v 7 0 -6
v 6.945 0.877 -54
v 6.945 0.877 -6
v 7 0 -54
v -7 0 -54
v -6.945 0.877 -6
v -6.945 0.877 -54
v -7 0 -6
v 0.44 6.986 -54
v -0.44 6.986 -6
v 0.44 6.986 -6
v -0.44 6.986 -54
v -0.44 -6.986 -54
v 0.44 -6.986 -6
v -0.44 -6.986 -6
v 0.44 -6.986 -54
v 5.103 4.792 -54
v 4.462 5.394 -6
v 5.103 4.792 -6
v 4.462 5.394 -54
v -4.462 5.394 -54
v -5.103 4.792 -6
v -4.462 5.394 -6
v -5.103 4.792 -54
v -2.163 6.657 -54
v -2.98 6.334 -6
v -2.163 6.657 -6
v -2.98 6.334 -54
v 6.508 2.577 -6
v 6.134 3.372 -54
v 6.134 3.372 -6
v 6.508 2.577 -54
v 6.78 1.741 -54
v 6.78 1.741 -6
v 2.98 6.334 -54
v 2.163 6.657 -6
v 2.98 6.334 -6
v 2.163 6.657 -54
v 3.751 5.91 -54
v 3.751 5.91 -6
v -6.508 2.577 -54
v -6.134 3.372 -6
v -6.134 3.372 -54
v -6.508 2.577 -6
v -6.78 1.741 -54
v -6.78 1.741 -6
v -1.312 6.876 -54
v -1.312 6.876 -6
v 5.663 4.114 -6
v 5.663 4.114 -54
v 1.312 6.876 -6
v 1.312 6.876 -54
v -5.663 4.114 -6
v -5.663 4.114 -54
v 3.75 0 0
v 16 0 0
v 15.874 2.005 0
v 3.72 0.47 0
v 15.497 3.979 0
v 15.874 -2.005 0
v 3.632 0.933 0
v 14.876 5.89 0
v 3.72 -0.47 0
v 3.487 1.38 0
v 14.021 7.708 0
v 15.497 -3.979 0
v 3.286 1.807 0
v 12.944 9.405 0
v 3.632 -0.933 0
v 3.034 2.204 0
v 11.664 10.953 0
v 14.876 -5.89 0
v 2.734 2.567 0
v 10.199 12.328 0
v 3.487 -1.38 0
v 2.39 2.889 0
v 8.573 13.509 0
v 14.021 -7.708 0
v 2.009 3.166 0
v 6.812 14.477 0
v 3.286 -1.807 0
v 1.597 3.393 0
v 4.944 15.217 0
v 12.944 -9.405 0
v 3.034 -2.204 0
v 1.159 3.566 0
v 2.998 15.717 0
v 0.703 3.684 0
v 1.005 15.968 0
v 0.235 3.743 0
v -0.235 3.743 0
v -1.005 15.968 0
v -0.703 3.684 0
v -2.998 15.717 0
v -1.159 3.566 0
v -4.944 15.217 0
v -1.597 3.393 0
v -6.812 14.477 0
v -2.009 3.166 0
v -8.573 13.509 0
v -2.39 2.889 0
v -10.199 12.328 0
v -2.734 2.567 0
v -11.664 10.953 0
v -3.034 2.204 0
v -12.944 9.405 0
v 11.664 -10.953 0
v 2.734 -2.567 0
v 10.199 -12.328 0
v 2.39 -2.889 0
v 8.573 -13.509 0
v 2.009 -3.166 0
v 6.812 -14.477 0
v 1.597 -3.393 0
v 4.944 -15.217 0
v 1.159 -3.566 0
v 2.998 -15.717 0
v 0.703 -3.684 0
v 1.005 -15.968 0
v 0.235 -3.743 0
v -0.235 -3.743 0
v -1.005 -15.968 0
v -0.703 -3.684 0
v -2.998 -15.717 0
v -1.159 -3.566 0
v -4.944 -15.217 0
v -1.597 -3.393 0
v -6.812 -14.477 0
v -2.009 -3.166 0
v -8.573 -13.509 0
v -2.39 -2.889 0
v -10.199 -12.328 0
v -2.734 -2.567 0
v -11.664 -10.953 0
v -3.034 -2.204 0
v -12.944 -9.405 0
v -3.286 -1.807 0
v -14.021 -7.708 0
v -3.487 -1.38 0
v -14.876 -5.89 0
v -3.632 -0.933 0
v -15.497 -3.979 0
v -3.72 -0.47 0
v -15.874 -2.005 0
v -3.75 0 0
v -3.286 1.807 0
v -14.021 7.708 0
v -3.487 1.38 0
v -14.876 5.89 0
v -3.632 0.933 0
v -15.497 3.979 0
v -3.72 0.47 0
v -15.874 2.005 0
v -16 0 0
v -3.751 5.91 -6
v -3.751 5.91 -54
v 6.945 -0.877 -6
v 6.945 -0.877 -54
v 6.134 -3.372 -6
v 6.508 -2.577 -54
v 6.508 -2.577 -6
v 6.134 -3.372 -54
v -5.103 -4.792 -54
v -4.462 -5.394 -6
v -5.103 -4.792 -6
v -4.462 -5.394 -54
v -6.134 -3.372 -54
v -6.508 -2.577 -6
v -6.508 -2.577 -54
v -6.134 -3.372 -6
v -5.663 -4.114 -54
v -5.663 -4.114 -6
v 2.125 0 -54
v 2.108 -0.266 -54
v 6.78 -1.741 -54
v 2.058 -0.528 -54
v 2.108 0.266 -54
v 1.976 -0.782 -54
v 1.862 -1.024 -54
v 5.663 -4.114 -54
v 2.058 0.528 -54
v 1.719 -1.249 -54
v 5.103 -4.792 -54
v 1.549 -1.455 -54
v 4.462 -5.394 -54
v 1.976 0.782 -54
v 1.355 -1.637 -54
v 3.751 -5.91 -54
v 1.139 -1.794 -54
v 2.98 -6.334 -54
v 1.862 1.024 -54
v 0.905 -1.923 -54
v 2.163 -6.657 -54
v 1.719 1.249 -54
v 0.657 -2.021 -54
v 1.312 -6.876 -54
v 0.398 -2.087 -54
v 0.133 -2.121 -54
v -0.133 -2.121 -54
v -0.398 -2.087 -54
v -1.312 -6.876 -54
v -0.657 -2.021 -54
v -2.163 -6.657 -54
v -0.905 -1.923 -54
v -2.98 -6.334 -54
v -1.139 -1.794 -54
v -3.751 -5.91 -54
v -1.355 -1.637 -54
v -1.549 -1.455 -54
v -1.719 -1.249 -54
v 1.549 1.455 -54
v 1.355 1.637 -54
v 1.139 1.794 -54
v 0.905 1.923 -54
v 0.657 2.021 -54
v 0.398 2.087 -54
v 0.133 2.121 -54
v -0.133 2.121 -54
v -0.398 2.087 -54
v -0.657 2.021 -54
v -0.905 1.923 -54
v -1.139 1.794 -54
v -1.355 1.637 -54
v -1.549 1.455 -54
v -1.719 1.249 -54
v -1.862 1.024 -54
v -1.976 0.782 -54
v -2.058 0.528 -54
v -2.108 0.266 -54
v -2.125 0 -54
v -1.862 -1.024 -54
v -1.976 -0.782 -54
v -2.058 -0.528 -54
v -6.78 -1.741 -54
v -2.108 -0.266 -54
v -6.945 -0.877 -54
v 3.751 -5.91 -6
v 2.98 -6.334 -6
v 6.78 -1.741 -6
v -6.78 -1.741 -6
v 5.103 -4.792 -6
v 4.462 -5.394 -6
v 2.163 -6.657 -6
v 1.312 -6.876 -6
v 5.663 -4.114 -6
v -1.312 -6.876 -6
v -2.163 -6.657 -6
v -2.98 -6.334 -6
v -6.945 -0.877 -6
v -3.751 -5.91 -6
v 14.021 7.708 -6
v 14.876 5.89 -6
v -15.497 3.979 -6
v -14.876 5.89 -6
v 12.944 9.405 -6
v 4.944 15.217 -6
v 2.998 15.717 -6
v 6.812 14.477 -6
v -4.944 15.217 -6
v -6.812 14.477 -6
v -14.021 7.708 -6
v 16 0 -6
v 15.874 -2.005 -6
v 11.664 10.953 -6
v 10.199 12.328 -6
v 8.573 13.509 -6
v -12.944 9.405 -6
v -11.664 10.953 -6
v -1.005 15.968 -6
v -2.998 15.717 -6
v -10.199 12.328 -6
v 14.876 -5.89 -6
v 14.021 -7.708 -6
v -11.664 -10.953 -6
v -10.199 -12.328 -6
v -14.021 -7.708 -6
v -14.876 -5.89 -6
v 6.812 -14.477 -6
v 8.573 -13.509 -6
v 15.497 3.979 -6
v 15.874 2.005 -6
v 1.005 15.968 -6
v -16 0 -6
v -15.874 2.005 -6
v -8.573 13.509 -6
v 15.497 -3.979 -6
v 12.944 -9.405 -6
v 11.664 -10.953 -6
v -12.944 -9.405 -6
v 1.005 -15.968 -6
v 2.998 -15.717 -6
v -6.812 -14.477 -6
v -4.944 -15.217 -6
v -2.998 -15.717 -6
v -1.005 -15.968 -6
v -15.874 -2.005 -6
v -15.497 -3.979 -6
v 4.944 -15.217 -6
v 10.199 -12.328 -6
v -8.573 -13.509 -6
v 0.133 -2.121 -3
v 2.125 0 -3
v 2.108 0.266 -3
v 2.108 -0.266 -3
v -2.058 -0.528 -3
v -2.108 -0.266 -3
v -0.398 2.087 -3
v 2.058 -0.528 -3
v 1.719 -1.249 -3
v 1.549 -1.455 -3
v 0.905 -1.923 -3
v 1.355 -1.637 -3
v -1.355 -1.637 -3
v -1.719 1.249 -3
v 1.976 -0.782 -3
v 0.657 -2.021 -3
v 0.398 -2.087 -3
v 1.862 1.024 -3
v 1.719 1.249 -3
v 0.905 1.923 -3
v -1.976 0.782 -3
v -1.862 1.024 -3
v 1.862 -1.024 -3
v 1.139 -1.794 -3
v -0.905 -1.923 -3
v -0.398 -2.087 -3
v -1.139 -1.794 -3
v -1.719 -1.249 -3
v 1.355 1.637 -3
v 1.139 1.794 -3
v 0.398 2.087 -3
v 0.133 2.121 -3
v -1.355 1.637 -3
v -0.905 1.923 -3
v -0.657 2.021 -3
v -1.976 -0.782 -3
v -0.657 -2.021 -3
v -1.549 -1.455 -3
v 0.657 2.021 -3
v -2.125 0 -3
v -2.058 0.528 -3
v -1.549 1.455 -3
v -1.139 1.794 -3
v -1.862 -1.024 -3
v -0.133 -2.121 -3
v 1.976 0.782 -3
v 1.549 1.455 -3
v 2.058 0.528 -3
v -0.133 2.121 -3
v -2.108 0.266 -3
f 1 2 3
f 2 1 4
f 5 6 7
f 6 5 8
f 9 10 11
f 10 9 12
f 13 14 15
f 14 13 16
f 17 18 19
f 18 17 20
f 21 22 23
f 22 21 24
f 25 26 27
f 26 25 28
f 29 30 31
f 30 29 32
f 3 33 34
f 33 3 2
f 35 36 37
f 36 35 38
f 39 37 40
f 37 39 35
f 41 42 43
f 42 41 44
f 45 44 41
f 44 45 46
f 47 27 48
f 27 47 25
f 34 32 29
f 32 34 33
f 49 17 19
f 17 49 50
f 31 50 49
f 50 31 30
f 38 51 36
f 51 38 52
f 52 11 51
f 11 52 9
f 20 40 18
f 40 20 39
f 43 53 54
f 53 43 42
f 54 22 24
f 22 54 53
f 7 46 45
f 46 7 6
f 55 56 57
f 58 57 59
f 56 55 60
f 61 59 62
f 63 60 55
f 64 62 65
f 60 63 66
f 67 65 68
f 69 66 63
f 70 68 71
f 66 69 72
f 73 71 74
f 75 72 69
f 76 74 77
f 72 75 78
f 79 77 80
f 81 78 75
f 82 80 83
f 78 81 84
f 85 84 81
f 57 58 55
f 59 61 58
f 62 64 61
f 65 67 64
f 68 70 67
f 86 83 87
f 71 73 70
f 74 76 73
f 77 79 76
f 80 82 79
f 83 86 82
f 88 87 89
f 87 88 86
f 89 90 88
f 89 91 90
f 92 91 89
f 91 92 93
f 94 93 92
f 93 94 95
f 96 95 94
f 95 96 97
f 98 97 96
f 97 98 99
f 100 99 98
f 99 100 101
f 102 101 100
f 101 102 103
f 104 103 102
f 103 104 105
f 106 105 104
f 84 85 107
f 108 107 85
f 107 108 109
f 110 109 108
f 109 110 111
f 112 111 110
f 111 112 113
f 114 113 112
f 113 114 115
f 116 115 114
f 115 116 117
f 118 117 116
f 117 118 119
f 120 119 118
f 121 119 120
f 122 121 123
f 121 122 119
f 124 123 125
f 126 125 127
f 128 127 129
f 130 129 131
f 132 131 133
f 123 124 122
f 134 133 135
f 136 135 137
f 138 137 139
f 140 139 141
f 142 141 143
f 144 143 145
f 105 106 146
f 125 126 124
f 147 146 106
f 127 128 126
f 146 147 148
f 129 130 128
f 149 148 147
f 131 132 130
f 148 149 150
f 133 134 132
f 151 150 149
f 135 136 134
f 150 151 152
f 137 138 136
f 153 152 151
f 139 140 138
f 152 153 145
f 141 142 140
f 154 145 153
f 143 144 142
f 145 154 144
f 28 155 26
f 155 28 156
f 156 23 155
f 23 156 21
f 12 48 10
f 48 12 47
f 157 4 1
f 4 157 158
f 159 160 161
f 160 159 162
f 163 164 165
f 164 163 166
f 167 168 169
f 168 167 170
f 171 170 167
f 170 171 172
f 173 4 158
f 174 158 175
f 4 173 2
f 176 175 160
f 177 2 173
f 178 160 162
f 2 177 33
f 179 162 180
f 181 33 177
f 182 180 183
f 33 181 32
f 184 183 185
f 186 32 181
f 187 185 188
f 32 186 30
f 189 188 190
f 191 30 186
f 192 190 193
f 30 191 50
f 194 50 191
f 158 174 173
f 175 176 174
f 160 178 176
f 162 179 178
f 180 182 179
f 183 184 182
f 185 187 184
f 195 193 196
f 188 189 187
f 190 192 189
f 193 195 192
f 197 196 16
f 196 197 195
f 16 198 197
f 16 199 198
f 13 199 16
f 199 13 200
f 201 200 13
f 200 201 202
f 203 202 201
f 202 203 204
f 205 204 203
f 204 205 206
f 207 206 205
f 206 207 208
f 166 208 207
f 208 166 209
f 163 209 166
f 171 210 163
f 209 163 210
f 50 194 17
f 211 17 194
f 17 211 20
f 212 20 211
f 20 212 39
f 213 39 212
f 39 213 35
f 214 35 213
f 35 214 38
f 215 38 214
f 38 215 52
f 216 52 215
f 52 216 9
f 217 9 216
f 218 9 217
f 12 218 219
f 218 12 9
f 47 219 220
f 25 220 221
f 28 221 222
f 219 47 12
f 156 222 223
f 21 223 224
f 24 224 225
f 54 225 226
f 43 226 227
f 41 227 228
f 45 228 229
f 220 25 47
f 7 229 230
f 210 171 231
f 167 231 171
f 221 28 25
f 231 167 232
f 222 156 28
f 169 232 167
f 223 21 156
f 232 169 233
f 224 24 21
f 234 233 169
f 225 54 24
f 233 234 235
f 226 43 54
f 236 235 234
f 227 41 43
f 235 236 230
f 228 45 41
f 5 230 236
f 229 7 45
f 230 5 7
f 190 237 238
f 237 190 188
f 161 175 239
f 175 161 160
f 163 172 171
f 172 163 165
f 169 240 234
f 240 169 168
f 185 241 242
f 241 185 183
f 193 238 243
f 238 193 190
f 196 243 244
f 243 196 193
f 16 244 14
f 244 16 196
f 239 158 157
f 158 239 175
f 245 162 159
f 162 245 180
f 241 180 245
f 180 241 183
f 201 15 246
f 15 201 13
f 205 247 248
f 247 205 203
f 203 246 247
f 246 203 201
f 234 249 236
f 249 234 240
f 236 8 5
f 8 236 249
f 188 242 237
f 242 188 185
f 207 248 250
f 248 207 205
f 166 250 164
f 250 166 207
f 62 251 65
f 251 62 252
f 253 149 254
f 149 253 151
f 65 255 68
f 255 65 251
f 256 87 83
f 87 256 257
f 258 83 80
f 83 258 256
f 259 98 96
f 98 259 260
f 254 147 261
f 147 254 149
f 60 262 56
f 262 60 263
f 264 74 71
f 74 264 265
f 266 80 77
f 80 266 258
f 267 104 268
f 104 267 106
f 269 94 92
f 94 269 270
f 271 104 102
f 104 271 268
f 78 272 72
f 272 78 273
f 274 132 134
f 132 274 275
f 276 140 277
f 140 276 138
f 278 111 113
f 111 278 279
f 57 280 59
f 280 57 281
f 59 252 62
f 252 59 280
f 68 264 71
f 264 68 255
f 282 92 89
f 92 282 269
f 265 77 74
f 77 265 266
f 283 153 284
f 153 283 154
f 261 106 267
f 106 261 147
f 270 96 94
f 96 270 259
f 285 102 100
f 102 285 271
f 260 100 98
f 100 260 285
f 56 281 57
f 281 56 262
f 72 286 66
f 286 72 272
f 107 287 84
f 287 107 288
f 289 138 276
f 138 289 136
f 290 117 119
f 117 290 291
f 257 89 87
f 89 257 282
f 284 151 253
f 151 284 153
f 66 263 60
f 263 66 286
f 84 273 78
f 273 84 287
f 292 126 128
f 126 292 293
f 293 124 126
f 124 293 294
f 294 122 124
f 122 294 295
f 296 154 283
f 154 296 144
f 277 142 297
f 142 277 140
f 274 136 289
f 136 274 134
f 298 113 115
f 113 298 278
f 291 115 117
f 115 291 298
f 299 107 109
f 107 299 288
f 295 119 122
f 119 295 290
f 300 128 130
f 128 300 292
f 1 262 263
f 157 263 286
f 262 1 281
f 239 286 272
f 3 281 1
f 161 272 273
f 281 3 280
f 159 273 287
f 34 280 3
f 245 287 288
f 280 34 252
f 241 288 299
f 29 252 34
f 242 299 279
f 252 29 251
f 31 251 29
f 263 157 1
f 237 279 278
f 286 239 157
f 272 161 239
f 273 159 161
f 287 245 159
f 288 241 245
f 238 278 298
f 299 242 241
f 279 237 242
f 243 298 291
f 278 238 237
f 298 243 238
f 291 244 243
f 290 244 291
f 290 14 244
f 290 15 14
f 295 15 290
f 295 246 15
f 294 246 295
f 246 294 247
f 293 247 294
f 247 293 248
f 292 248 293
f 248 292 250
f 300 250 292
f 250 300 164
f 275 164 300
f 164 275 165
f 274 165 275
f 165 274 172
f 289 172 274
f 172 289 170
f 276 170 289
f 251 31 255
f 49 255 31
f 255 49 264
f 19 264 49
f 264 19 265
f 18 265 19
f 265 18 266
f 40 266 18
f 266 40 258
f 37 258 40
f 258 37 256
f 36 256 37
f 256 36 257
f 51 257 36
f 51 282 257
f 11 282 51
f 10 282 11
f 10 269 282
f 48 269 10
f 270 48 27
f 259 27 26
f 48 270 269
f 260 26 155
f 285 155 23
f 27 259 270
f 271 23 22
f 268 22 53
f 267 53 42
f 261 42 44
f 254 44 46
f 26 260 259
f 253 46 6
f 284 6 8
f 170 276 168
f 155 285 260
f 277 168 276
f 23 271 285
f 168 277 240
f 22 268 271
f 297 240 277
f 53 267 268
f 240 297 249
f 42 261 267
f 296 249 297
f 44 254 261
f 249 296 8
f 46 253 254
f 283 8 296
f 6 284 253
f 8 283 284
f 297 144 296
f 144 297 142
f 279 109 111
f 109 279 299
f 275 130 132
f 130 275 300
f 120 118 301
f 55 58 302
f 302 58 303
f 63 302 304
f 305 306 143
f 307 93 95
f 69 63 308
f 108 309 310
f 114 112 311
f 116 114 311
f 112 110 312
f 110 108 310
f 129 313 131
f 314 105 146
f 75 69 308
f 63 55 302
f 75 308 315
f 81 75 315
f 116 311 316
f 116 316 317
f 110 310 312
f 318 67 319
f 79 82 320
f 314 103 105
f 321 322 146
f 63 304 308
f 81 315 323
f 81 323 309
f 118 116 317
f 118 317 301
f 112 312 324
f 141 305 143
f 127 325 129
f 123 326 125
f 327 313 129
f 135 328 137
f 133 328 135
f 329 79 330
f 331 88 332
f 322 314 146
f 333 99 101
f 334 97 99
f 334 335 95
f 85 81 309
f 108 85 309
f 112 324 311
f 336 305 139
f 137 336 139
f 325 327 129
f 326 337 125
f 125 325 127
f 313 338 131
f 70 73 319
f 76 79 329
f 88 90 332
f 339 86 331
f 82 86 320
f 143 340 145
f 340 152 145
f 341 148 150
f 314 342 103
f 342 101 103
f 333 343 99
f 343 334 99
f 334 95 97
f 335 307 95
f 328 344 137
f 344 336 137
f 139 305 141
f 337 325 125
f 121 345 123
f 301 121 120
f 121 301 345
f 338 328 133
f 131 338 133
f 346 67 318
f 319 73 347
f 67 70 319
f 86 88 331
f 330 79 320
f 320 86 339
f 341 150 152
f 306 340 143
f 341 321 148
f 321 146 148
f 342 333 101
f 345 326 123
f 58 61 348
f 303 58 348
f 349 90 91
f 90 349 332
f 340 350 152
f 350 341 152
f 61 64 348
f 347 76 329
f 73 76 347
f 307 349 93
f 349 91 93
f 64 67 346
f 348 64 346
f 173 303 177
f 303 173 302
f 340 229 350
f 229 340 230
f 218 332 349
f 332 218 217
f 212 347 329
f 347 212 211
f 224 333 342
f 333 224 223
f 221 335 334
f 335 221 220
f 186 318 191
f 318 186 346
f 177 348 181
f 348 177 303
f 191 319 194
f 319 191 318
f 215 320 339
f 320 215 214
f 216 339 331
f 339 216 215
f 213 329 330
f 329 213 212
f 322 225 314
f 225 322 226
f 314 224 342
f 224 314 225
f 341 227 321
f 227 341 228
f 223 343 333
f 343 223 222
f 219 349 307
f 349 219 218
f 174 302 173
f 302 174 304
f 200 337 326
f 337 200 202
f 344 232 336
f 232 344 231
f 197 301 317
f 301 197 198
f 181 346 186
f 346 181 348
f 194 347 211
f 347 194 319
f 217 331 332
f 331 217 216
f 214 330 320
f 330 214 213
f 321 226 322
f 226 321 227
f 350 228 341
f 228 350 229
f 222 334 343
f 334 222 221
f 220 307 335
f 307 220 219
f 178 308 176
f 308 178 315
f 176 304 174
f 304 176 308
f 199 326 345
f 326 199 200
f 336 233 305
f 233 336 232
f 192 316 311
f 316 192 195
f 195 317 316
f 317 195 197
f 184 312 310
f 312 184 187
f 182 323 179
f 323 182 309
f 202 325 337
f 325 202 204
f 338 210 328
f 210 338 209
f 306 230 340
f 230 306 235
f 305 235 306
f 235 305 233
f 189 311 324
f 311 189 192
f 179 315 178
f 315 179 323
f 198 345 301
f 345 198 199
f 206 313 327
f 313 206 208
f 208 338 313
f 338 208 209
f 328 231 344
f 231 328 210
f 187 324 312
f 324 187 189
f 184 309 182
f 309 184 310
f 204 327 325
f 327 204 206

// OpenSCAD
$fn = 50;


difference() {
	union() {
		translate(v = [0, 0, -54.0000000000]) {
			cylinder(h = 54, r = 7.0000000000);
		}
		translate(v = [0, 0, -6.0000000000]) {
			cylinder(h = 6, r = 16.0000000000);
		}
	}
	union() {
		translate(v = [0, 0, 0]) {
			rotate(a = [0, 0, 0]) {
				difference() {
					union() {
						#translate(v = [0, 0, -54.0000000000]) {
							cylinder(h = 54, r = 2.0000000000);
						}
						#translate(v = [0, 0, -3]) {
							cylinder(h = 3, r1 = 2.1250000000, r2 = 3.7500000000);
						}
						#translate(v = [0, 0, -54.0000000000]) {
							cylinder(h = 54, r = 2.1250000000);
						}
						#translate(v = [0, 0, -54.0000000000]) {
							cylinder(h = 54, r = 2.0000000000);
						}
					}
					union();
				}
			}
		}
	}
}
